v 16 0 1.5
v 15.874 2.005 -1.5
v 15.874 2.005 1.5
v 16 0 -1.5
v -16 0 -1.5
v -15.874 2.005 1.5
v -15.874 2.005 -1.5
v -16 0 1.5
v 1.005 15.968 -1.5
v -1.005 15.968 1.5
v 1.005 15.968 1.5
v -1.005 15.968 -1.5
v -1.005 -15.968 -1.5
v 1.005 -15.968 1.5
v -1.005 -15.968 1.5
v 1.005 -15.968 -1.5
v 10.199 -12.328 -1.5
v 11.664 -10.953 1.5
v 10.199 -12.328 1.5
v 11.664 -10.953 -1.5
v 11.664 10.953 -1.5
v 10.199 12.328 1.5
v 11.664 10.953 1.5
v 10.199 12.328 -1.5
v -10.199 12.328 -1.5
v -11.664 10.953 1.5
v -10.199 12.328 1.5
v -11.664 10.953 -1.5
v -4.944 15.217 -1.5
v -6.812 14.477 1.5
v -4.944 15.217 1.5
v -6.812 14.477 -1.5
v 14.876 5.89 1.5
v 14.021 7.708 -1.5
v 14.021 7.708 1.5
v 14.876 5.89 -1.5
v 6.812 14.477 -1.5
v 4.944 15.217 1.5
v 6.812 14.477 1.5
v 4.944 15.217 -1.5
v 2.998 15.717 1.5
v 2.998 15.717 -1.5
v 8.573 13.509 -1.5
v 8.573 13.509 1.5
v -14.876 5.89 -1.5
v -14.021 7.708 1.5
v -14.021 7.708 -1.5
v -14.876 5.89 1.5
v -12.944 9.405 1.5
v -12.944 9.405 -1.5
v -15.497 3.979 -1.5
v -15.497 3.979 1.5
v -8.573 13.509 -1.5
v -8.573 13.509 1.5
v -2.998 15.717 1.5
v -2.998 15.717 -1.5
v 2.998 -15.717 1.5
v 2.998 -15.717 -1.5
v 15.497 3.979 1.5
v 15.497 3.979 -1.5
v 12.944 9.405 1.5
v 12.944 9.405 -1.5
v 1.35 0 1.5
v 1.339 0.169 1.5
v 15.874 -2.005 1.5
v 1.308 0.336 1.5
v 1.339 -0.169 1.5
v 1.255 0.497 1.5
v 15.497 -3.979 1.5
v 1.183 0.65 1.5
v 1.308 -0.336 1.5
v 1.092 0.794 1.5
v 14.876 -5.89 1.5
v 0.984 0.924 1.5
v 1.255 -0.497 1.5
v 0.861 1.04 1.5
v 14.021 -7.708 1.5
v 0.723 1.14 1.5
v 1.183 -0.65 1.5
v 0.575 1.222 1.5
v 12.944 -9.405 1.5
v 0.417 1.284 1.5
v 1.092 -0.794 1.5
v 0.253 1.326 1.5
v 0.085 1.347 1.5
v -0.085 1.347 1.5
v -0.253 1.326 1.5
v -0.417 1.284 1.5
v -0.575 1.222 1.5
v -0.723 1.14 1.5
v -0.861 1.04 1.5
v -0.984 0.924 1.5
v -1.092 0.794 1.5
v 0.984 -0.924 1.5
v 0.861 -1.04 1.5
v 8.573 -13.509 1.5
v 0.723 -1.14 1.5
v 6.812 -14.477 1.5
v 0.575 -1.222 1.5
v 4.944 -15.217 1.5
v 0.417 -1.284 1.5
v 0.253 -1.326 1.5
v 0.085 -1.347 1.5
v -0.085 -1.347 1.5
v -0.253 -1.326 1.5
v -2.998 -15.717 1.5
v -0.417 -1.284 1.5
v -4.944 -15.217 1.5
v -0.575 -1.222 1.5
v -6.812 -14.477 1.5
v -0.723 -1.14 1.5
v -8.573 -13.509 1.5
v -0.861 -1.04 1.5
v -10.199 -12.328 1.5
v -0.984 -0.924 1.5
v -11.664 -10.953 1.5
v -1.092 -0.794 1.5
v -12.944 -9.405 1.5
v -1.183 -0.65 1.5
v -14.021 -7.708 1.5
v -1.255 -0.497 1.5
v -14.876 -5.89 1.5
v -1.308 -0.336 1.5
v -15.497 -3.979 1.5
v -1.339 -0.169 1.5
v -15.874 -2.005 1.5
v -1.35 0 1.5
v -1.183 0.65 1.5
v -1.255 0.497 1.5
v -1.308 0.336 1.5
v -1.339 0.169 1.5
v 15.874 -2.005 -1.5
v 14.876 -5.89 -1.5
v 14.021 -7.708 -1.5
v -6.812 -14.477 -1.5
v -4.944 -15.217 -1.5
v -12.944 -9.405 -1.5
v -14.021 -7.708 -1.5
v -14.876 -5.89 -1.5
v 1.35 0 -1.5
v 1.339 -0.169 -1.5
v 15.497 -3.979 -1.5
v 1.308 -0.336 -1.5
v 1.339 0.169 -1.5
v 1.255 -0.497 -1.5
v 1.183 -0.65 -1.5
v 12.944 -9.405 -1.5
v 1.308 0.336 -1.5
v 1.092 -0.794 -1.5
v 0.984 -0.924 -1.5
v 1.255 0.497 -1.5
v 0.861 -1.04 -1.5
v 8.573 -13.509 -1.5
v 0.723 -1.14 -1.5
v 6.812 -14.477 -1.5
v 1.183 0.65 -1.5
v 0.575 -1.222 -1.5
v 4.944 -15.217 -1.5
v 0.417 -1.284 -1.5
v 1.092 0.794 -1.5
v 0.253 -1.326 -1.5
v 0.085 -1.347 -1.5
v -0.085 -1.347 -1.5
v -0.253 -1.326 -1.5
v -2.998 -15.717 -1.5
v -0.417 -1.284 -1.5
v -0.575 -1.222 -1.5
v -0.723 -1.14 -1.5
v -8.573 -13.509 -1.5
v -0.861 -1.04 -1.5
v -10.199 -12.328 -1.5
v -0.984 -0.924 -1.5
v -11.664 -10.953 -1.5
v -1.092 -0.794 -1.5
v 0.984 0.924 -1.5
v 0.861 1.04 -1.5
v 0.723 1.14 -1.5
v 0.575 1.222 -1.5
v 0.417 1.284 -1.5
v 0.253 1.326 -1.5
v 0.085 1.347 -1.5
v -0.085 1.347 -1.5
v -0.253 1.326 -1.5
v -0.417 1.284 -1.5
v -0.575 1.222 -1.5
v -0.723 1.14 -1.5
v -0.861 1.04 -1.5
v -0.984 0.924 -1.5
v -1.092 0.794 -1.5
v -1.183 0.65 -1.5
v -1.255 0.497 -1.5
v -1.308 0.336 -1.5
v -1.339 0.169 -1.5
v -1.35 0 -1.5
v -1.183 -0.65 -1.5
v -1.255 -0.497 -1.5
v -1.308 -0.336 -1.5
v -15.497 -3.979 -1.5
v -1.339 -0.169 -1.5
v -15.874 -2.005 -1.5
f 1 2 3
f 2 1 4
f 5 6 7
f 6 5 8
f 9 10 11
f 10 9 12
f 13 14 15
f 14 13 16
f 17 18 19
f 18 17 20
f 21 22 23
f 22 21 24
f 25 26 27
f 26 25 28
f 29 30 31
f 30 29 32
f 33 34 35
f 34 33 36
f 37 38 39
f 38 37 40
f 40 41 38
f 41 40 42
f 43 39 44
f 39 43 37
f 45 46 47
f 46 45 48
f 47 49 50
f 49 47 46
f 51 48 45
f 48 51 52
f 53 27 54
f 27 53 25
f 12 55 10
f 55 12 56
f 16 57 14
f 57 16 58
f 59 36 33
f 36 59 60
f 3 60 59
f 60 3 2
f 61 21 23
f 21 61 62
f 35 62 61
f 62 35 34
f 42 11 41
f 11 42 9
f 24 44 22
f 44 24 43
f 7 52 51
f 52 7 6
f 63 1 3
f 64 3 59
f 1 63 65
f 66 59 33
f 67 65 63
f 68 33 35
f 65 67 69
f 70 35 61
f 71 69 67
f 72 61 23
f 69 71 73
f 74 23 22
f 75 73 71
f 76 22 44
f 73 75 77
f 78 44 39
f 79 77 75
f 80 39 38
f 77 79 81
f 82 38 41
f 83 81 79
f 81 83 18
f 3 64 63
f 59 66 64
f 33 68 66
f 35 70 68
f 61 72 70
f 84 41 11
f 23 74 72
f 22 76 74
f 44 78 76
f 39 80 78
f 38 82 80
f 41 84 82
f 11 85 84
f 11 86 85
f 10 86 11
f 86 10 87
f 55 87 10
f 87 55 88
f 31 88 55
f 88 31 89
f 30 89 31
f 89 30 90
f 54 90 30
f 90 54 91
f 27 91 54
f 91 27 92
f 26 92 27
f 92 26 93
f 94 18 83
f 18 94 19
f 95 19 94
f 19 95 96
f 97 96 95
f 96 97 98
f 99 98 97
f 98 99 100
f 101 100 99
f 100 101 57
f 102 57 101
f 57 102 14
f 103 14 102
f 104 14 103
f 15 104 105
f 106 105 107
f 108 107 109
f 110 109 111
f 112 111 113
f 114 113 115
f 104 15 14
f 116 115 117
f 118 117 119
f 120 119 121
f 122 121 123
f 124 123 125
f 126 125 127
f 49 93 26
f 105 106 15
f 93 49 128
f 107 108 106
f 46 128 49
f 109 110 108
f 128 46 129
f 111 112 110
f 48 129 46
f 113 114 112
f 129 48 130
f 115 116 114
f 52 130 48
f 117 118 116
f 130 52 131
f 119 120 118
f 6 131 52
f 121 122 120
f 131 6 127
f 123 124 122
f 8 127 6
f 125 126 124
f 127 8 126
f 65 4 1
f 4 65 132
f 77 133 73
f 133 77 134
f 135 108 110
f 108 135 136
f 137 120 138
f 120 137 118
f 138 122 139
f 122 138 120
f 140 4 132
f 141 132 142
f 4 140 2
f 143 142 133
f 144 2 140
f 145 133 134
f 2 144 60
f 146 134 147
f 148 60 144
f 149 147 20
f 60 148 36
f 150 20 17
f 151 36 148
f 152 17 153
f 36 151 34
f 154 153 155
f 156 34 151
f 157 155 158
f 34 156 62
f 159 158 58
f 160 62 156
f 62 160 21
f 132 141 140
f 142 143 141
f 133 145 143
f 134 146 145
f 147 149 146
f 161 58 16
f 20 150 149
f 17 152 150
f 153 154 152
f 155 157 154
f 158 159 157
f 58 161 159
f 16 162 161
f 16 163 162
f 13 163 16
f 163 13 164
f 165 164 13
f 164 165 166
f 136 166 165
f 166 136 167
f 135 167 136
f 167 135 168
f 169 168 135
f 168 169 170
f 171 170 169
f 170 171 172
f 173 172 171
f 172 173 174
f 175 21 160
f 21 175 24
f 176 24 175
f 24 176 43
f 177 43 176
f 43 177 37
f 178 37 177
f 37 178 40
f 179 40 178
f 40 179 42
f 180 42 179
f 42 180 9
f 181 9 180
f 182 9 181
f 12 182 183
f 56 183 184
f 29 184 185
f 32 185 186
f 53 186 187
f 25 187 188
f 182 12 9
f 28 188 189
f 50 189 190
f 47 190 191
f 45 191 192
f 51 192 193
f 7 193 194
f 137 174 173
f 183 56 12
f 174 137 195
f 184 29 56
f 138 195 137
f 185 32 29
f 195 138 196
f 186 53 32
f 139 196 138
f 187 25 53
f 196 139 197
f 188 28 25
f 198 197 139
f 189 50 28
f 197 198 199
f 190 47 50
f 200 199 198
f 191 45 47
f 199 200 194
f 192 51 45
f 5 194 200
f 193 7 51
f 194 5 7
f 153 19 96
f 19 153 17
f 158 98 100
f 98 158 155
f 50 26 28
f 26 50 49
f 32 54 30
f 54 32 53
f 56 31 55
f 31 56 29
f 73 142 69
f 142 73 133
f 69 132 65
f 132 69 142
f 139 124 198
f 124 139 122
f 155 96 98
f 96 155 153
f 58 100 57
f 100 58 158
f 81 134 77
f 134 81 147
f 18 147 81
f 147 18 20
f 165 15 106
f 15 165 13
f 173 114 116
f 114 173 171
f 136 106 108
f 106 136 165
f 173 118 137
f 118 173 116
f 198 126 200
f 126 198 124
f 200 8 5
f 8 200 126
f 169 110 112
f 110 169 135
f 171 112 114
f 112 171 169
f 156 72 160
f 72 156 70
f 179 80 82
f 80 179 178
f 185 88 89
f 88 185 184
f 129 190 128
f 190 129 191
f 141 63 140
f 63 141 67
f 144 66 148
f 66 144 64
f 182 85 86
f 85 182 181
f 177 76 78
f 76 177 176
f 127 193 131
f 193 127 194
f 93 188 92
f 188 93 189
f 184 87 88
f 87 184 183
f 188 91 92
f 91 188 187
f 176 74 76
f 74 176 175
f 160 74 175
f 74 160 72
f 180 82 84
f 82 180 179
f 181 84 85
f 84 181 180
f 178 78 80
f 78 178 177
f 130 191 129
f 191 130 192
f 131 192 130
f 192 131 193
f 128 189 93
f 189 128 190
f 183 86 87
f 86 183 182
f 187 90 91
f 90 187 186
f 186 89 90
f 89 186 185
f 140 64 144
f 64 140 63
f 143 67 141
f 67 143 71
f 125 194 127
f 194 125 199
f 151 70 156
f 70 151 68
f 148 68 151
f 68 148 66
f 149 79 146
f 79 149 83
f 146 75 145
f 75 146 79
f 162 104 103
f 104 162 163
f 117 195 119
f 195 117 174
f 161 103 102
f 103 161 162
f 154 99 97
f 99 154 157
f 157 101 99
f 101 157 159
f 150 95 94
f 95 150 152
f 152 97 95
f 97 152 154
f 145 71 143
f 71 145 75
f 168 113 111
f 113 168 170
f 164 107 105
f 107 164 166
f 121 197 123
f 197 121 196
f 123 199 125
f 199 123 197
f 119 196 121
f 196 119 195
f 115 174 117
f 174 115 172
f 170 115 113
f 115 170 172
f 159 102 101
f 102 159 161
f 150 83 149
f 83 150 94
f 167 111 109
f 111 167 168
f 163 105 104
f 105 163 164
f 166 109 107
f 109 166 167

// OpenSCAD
$fn = 50;


difference() {
	union() {
		translate(v = [0, 0, -1.5000000000]) {
			cylinder(h = 3, r = 16.0000000000);
		}
	}
	union() {
		translate(v = [0, 0, -100.0000000000]) {
			cylinder(h = 200, r = 1.3500000000);
		}
	}
}
